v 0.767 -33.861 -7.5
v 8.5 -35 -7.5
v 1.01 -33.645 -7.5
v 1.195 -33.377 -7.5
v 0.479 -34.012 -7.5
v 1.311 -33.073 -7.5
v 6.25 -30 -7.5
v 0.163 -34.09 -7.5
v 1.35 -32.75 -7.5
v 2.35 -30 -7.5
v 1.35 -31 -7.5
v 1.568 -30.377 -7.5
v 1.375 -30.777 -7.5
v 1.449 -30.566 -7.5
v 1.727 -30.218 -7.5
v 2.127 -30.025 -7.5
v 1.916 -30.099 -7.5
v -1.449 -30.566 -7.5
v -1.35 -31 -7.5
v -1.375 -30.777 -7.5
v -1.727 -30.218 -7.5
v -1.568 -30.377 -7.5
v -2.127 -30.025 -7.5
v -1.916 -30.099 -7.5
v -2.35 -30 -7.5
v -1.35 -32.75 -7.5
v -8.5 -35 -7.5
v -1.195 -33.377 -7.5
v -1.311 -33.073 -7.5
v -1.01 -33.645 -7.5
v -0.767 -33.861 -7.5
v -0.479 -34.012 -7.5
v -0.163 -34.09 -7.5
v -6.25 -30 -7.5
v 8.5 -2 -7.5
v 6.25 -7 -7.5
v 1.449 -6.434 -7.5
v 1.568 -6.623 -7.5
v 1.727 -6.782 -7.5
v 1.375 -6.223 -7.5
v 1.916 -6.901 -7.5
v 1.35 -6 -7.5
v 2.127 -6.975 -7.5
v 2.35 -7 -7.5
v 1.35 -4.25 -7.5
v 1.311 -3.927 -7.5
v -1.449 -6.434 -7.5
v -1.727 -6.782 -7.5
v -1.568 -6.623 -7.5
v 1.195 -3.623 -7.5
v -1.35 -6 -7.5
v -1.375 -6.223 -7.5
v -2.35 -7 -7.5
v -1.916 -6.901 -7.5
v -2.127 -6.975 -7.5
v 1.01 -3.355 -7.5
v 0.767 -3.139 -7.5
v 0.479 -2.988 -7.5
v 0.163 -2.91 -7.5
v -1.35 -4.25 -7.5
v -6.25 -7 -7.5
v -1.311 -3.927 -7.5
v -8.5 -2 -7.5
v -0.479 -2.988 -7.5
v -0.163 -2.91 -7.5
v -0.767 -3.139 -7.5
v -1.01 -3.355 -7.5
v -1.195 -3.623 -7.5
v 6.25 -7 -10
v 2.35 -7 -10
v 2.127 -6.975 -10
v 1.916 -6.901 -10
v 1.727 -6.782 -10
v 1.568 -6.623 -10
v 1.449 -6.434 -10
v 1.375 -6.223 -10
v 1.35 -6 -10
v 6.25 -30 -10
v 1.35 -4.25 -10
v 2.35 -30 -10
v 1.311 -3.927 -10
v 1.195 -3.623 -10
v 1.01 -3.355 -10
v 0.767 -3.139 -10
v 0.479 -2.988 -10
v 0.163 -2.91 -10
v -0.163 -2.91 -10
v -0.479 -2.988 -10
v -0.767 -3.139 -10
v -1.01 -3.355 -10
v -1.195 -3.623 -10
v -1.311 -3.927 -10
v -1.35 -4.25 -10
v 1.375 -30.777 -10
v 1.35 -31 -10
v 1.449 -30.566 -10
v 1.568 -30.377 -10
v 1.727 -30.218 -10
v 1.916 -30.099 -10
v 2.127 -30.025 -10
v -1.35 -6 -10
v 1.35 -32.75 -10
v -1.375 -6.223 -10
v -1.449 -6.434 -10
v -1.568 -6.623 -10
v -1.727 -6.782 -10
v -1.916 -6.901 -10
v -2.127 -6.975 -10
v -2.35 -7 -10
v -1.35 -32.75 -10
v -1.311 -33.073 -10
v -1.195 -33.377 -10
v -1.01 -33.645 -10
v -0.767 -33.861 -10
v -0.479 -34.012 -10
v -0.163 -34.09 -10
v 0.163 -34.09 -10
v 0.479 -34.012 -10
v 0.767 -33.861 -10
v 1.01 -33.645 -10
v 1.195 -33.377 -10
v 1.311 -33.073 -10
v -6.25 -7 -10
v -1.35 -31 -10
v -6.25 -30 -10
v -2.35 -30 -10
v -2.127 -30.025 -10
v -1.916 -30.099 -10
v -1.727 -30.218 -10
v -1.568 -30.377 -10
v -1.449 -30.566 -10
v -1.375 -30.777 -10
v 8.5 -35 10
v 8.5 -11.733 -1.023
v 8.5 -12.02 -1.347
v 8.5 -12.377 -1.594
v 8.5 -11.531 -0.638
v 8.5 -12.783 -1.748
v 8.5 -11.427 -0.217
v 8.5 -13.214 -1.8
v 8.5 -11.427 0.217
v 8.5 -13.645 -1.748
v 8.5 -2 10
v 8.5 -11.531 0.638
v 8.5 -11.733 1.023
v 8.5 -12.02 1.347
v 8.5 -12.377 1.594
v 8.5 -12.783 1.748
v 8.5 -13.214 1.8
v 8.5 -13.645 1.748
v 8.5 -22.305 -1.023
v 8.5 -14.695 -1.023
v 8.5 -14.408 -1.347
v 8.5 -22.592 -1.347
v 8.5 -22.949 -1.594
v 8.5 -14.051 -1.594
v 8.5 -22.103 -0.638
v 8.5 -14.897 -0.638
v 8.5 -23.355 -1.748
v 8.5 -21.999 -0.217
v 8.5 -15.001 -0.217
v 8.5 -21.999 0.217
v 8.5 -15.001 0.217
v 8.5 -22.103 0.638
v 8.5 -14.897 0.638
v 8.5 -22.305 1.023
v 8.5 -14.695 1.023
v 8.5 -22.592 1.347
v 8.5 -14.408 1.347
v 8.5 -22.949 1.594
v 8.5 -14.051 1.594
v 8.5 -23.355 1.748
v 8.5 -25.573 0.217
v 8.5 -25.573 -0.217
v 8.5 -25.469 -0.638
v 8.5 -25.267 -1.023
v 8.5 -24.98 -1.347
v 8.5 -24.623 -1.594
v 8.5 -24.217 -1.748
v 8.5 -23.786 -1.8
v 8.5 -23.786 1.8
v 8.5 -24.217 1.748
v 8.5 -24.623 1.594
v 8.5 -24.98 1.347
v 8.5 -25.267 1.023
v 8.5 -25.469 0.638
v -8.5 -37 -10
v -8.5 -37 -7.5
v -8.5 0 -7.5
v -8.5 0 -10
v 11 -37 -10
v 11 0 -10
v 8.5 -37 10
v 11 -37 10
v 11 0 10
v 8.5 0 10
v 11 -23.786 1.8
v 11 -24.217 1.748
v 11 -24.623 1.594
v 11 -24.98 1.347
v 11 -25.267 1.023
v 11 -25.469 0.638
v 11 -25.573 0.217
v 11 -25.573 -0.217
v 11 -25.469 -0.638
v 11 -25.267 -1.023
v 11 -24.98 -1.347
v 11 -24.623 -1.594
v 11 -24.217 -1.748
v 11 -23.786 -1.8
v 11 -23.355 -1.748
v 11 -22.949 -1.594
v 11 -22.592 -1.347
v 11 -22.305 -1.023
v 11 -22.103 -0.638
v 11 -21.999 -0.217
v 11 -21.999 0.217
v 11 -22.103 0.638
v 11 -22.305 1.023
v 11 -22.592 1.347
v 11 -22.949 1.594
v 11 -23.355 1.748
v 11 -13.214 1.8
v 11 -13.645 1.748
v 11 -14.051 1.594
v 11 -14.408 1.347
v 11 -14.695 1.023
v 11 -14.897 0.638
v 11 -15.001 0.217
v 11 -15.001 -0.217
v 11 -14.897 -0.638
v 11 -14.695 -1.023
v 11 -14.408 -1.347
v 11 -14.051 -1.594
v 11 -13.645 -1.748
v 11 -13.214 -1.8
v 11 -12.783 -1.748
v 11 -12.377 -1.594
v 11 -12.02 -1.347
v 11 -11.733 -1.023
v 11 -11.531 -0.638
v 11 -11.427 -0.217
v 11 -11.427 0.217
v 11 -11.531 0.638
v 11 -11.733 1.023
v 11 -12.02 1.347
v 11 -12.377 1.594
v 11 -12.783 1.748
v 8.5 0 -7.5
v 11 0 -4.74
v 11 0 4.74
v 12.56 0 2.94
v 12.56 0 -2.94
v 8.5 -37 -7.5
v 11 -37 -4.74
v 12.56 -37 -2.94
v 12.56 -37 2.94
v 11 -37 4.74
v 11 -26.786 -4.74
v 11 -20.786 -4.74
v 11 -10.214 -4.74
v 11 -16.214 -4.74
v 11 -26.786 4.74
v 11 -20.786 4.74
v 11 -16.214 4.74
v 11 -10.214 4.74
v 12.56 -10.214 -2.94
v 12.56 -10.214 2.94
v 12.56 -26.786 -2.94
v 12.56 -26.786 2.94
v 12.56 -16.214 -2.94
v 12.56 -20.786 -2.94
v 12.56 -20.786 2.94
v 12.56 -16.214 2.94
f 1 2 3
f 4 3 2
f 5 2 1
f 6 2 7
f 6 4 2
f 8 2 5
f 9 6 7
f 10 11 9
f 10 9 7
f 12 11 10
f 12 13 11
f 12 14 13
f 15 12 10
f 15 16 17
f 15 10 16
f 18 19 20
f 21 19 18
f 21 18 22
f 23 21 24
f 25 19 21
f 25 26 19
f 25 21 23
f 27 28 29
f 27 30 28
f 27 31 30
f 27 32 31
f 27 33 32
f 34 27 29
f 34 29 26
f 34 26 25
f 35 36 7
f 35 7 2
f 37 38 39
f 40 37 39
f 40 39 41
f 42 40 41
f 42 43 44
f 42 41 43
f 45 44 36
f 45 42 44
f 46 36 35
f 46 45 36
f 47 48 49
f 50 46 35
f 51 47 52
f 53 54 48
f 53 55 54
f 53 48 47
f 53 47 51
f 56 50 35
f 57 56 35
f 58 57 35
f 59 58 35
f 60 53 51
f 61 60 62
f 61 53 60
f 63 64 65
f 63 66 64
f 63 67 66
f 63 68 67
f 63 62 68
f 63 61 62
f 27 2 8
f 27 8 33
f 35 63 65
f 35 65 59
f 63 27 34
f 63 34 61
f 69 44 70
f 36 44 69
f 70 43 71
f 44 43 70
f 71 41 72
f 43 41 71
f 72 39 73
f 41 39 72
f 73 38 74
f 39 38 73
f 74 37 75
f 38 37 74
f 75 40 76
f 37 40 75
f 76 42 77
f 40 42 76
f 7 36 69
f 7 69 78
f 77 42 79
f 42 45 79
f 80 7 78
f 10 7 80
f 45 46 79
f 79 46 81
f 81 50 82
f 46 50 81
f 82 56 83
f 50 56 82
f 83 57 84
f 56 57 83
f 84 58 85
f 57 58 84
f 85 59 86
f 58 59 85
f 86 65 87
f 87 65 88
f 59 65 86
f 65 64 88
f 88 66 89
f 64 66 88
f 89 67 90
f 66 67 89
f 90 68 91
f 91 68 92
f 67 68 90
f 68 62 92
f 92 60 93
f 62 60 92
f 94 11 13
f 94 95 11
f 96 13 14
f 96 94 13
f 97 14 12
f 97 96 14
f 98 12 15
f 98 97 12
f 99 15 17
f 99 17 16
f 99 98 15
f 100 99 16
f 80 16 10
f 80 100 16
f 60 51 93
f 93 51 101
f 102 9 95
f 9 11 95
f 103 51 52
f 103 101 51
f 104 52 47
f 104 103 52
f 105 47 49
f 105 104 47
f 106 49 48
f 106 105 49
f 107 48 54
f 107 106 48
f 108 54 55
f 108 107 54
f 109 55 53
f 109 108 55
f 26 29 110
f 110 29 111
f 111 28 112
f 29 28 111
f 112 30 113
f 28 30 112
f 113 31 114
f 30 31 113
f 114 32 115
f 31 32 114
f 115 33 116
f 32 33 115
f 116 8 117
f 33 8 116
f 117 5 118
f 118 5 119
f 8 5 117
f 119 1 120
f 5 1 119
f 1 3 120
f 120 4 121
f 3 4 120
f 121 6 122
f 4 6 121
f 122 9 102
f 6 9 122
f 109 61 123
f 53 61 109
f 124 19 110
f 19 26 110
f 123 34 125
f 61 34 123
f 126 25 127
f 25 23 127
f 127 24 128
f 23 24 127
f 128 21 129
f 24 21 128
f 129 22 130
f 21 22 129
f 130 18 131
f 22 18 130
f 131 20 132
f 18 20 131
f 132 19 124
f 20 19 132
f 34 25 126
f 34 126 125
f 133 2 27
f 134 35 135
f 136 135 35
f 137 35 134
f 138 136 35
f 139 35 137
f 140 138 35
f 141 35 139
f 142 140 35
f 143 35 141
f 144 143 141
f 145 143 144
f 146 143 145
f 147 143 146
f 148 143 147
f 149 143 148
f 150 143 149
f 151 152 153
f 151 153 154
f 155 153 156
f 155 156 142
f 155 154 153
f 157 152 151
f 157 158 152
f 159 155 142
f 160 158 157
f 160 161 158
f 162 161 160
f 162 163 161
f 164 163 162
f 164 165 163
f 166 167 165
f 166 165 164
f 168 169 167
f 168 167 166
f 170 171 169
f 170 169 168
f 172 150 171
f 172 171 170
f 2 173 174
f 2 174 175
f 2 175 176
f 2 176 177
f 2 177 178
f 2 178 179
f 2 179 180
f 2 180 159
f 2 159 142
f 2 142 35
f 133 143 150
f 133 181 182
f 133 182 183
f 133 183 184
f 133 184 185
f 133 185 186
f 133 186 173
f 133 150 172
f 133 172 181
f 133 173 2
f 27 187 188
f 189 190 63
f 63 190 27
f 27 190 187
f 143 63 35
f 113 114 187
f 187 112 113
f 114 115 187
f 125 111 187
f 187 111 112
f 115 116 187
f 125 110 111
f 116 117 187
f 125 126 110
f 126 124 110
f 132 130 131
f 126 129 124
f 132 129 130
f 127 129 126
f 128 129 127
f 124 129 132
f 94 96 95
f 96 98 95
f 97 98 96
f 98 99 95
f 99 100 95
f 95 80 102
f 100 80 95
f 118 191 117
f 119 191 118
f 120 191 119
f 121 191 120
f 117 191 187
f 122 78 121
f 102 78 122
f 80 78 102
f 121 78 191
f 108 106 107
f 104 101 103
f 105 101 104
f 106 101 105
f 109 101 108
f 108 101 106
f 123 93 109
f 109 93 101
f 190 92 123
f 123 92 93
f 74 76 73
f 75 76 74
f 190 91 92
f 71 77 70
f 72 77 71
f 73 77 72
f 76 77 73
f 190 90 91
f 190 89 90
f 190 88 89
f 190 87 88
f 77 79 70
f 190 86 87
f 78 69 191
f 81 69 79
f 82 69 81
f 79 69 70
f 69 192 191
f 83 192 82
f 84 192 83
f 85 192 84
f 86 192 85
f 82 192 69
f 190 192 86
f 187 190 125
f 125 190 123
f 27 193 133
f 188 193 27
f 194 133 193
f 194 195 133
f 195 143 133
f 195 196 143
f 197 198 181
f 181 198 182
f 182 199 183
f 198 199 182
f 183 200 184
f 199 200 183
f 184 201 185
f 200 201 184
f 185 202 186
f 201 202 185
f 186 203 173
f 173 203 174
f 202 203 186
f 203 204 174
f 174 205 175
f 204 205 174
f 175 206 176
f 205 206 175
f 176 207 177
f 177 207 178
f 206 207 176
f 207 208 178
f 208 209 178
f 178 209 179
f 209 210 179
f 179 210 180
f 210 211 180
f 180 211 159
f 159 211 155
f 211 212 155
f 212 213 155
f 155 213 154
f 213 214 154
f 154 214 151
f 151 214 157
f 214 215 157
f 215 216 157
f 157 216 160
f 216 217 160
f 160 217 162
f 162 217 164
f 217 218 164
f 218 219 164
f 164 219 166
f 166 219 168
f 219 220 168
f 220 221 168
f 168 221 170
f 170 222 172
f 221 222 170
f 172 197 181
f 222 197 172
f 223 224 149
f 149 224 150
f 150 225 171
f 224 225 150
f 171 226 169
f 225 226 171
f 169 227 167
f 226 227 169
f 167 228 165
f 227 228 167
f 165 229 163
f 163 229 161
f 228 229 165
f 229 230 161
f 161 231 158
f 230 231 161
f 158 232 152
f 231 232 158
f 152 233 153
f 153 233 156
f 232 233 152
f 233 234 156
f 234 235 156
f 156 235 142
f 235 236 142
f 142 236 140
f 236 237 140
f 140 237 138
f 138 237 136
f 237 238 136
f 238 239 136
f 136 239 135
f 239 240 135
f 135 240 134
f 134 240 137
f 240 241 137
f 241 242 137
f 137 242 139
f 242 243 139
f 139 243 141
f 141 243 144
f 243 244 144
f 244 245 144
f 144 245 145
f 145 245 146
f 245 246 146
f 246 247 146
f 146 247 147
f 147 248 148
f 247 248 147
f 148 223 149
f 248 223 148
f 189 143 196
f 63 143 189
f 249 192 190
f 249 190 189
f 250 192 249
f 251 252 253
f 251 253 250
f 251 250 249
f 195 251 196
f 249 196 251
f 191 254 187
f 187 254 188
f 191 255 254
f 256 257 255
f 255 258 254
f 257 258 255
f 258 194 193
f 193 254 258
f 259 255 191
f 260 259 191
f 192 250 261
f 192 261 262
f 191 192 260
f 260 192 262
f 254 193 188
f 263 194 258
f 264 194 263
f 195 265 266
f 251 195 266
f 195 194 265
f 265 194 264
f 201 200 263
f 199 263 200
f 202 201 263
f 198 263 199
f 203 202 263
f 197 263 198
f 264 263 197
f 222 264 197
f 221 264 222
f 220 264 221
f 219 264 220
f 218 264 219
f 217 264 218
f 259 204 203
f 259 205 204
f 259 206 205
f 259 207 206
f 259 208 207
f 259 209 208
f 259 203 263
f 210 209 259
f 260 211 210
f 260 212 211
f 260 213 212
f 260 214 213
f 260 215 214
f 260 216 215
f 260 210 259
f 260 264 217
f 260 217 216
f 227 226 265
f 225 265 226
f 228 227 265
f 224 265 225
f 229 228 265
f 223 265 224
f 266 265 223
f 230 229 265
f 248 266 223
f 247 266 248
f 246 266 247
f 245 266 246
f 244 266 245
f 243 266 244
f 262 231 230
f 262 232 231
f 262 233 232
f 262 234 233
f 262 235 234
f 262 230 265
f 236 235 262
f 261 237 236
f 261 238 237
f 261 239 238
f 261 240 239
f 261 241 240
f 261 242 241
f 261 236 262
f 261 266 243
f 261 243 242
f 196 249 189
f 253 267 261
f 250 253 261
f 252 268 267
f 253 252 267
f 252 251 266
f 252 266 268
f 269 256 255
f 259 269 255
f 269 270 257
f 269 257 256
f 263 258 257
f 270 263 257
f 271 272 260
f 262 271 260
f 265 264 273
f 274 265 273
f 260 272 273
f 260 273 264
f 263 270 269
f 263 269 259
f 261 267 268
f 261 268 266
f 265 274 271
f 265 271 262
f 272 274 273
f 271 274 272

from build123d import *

# Parameters (mm, degrees)
PAD_DEPTH       = 37
PAD001_DEPTH    = 37
SKETCH002_W     = 17
SKETCH002_H     = 33
POCKET_DEPTH    = 17.5
SKETCH003_R     = 1.8
POCKET001_DEPTH = 21.061
SKETCH004_W     = 9.48
SKETCH004_H     = 6
POCKET002_DEPTH = 1.56
SKETCH005_W     = 12.5
SKETCH005_H     = 23
POCKET003_DEPTH = 2.501
POCKET004_DEPTH = 2.501
FILLET_R        = 1


with BuildPart() as part:
    # Sketch → Pad (new body)
    with BuildSketch(Plane.XZ):
        Polygon((-8.5, -7.5), (-8.5, -10), (11, -10), (11, -4.74), (12.56, -2.94), (12.56, 2.94), (11, 4.74), (11, 10), (8.5, 10), (8.5, -7.5), align=None)
    extrude(amount=PAD_DEPTH)

    # Sketch001 (on Face12 of Pad) → Pad001 (join)
    with BuildSketch(Plane.XZ.offset(37)):
        Polygon((8.5, 10), (-8.5, -7.5), (8.5, -7.5), align=None)
    extrude(amount=-PAD001_DEPTH)

    # Sketch002 (on Face8 of Pad001) → Pocket (cut)
    with BuildSketch(Plane(origin=(0, 0, 10), x_dir=(-1, 0, 0), z_dir=(0, 0, 1))):
        with Locations((0, 18.5)):
            Rectangle(SKETCH002_W, SKETCH002_H)
    extrude(amount=-POCKET_DEPTH, mode=Mode.SUBTRACT)

    # Sketch003 (on Face16 of Pocket) → Pocket001 (cut, through all)
    with BuildSketch(Plane(origin=(12.56, 0, 0), x_dir=(0, 0, 1), z_dir=(1, 0, 0))):
        with Locations((0, 23.786)):
            Circle(SKETCH003_R)
        with Locations((0, 13.214)):
            Circle(SKETCH003_R)
    extrude(amount=-POCKET001_DEPTH, mode=Mode.SUBTRACT)

    # Sketch004 (on Face16 of Pocket001) → Pocket002 (cut)
    with BuildSketch(Plane(origin=(12.56, 0, 0), x_dir=(0, 0, 1), z_dir=(1, 0, 0))):
        with Locations((0, 23.786)):
            Rectangle(SKETCH004_W, SKETCH004_H)
        with Locations((0, 13.214)):
            Rectangle(SKETCH004_W, SKETCH004_H)
    extrude(amount=-POCKET002_DEPTH, mode=Mode.SUBTRACT)

    # Sketch005 (on Face3 of Pocket002) → Pocket003 (cut, through all)
    with BuildSketch(Plane(origin=(0, 0, -7.5), x_dir=(-1, 0, 0), z_dir=(0, 0, 1))):
        with Locations((0, 18.5)):
            Rectangle(SKETCH005_W, SKETCH005_H)
    extrude(amount=-POCKET003_DEPTH, mode=Mode.SUBTRACT)

    # Sketch006 (on Face3 of Pocket003) → Pocket004 (cut, through all)
    with BuildSketch(Plane(origin=(0, 0, -7.5), x_dir=(-1, 0, 0), z_dir=(0, 0, 1))):
        with BuildLine():
            ThreePointArc((1.35, 32.75), (0, 34.1), (-1.35, 32.75))
            Line((-1.35, 32.75), (-1.35, 4.25))
            ThreePointArc((-1.35, 4.25), (0, 2.9), (1.35, 4.25))
            Line((1.35, 4.25), (1.35, 32.75))
        make_face()
    extrude(amount=-POCKET004_DEPTH, mode=Mode.SUBTRACT)

    # Fillet
    fillet_edges = [part.edges().sort_by_distance(p)[0] for p in [
        (1.35, -30, -8.75),
        (-1.35, -30, -8.75),
        (1.35, -7, -8.75),
        (-1.35, -7, -8.75),
    ]]
    fillet(fillet_edges, radius=FILLET_R)


solid = part.part
